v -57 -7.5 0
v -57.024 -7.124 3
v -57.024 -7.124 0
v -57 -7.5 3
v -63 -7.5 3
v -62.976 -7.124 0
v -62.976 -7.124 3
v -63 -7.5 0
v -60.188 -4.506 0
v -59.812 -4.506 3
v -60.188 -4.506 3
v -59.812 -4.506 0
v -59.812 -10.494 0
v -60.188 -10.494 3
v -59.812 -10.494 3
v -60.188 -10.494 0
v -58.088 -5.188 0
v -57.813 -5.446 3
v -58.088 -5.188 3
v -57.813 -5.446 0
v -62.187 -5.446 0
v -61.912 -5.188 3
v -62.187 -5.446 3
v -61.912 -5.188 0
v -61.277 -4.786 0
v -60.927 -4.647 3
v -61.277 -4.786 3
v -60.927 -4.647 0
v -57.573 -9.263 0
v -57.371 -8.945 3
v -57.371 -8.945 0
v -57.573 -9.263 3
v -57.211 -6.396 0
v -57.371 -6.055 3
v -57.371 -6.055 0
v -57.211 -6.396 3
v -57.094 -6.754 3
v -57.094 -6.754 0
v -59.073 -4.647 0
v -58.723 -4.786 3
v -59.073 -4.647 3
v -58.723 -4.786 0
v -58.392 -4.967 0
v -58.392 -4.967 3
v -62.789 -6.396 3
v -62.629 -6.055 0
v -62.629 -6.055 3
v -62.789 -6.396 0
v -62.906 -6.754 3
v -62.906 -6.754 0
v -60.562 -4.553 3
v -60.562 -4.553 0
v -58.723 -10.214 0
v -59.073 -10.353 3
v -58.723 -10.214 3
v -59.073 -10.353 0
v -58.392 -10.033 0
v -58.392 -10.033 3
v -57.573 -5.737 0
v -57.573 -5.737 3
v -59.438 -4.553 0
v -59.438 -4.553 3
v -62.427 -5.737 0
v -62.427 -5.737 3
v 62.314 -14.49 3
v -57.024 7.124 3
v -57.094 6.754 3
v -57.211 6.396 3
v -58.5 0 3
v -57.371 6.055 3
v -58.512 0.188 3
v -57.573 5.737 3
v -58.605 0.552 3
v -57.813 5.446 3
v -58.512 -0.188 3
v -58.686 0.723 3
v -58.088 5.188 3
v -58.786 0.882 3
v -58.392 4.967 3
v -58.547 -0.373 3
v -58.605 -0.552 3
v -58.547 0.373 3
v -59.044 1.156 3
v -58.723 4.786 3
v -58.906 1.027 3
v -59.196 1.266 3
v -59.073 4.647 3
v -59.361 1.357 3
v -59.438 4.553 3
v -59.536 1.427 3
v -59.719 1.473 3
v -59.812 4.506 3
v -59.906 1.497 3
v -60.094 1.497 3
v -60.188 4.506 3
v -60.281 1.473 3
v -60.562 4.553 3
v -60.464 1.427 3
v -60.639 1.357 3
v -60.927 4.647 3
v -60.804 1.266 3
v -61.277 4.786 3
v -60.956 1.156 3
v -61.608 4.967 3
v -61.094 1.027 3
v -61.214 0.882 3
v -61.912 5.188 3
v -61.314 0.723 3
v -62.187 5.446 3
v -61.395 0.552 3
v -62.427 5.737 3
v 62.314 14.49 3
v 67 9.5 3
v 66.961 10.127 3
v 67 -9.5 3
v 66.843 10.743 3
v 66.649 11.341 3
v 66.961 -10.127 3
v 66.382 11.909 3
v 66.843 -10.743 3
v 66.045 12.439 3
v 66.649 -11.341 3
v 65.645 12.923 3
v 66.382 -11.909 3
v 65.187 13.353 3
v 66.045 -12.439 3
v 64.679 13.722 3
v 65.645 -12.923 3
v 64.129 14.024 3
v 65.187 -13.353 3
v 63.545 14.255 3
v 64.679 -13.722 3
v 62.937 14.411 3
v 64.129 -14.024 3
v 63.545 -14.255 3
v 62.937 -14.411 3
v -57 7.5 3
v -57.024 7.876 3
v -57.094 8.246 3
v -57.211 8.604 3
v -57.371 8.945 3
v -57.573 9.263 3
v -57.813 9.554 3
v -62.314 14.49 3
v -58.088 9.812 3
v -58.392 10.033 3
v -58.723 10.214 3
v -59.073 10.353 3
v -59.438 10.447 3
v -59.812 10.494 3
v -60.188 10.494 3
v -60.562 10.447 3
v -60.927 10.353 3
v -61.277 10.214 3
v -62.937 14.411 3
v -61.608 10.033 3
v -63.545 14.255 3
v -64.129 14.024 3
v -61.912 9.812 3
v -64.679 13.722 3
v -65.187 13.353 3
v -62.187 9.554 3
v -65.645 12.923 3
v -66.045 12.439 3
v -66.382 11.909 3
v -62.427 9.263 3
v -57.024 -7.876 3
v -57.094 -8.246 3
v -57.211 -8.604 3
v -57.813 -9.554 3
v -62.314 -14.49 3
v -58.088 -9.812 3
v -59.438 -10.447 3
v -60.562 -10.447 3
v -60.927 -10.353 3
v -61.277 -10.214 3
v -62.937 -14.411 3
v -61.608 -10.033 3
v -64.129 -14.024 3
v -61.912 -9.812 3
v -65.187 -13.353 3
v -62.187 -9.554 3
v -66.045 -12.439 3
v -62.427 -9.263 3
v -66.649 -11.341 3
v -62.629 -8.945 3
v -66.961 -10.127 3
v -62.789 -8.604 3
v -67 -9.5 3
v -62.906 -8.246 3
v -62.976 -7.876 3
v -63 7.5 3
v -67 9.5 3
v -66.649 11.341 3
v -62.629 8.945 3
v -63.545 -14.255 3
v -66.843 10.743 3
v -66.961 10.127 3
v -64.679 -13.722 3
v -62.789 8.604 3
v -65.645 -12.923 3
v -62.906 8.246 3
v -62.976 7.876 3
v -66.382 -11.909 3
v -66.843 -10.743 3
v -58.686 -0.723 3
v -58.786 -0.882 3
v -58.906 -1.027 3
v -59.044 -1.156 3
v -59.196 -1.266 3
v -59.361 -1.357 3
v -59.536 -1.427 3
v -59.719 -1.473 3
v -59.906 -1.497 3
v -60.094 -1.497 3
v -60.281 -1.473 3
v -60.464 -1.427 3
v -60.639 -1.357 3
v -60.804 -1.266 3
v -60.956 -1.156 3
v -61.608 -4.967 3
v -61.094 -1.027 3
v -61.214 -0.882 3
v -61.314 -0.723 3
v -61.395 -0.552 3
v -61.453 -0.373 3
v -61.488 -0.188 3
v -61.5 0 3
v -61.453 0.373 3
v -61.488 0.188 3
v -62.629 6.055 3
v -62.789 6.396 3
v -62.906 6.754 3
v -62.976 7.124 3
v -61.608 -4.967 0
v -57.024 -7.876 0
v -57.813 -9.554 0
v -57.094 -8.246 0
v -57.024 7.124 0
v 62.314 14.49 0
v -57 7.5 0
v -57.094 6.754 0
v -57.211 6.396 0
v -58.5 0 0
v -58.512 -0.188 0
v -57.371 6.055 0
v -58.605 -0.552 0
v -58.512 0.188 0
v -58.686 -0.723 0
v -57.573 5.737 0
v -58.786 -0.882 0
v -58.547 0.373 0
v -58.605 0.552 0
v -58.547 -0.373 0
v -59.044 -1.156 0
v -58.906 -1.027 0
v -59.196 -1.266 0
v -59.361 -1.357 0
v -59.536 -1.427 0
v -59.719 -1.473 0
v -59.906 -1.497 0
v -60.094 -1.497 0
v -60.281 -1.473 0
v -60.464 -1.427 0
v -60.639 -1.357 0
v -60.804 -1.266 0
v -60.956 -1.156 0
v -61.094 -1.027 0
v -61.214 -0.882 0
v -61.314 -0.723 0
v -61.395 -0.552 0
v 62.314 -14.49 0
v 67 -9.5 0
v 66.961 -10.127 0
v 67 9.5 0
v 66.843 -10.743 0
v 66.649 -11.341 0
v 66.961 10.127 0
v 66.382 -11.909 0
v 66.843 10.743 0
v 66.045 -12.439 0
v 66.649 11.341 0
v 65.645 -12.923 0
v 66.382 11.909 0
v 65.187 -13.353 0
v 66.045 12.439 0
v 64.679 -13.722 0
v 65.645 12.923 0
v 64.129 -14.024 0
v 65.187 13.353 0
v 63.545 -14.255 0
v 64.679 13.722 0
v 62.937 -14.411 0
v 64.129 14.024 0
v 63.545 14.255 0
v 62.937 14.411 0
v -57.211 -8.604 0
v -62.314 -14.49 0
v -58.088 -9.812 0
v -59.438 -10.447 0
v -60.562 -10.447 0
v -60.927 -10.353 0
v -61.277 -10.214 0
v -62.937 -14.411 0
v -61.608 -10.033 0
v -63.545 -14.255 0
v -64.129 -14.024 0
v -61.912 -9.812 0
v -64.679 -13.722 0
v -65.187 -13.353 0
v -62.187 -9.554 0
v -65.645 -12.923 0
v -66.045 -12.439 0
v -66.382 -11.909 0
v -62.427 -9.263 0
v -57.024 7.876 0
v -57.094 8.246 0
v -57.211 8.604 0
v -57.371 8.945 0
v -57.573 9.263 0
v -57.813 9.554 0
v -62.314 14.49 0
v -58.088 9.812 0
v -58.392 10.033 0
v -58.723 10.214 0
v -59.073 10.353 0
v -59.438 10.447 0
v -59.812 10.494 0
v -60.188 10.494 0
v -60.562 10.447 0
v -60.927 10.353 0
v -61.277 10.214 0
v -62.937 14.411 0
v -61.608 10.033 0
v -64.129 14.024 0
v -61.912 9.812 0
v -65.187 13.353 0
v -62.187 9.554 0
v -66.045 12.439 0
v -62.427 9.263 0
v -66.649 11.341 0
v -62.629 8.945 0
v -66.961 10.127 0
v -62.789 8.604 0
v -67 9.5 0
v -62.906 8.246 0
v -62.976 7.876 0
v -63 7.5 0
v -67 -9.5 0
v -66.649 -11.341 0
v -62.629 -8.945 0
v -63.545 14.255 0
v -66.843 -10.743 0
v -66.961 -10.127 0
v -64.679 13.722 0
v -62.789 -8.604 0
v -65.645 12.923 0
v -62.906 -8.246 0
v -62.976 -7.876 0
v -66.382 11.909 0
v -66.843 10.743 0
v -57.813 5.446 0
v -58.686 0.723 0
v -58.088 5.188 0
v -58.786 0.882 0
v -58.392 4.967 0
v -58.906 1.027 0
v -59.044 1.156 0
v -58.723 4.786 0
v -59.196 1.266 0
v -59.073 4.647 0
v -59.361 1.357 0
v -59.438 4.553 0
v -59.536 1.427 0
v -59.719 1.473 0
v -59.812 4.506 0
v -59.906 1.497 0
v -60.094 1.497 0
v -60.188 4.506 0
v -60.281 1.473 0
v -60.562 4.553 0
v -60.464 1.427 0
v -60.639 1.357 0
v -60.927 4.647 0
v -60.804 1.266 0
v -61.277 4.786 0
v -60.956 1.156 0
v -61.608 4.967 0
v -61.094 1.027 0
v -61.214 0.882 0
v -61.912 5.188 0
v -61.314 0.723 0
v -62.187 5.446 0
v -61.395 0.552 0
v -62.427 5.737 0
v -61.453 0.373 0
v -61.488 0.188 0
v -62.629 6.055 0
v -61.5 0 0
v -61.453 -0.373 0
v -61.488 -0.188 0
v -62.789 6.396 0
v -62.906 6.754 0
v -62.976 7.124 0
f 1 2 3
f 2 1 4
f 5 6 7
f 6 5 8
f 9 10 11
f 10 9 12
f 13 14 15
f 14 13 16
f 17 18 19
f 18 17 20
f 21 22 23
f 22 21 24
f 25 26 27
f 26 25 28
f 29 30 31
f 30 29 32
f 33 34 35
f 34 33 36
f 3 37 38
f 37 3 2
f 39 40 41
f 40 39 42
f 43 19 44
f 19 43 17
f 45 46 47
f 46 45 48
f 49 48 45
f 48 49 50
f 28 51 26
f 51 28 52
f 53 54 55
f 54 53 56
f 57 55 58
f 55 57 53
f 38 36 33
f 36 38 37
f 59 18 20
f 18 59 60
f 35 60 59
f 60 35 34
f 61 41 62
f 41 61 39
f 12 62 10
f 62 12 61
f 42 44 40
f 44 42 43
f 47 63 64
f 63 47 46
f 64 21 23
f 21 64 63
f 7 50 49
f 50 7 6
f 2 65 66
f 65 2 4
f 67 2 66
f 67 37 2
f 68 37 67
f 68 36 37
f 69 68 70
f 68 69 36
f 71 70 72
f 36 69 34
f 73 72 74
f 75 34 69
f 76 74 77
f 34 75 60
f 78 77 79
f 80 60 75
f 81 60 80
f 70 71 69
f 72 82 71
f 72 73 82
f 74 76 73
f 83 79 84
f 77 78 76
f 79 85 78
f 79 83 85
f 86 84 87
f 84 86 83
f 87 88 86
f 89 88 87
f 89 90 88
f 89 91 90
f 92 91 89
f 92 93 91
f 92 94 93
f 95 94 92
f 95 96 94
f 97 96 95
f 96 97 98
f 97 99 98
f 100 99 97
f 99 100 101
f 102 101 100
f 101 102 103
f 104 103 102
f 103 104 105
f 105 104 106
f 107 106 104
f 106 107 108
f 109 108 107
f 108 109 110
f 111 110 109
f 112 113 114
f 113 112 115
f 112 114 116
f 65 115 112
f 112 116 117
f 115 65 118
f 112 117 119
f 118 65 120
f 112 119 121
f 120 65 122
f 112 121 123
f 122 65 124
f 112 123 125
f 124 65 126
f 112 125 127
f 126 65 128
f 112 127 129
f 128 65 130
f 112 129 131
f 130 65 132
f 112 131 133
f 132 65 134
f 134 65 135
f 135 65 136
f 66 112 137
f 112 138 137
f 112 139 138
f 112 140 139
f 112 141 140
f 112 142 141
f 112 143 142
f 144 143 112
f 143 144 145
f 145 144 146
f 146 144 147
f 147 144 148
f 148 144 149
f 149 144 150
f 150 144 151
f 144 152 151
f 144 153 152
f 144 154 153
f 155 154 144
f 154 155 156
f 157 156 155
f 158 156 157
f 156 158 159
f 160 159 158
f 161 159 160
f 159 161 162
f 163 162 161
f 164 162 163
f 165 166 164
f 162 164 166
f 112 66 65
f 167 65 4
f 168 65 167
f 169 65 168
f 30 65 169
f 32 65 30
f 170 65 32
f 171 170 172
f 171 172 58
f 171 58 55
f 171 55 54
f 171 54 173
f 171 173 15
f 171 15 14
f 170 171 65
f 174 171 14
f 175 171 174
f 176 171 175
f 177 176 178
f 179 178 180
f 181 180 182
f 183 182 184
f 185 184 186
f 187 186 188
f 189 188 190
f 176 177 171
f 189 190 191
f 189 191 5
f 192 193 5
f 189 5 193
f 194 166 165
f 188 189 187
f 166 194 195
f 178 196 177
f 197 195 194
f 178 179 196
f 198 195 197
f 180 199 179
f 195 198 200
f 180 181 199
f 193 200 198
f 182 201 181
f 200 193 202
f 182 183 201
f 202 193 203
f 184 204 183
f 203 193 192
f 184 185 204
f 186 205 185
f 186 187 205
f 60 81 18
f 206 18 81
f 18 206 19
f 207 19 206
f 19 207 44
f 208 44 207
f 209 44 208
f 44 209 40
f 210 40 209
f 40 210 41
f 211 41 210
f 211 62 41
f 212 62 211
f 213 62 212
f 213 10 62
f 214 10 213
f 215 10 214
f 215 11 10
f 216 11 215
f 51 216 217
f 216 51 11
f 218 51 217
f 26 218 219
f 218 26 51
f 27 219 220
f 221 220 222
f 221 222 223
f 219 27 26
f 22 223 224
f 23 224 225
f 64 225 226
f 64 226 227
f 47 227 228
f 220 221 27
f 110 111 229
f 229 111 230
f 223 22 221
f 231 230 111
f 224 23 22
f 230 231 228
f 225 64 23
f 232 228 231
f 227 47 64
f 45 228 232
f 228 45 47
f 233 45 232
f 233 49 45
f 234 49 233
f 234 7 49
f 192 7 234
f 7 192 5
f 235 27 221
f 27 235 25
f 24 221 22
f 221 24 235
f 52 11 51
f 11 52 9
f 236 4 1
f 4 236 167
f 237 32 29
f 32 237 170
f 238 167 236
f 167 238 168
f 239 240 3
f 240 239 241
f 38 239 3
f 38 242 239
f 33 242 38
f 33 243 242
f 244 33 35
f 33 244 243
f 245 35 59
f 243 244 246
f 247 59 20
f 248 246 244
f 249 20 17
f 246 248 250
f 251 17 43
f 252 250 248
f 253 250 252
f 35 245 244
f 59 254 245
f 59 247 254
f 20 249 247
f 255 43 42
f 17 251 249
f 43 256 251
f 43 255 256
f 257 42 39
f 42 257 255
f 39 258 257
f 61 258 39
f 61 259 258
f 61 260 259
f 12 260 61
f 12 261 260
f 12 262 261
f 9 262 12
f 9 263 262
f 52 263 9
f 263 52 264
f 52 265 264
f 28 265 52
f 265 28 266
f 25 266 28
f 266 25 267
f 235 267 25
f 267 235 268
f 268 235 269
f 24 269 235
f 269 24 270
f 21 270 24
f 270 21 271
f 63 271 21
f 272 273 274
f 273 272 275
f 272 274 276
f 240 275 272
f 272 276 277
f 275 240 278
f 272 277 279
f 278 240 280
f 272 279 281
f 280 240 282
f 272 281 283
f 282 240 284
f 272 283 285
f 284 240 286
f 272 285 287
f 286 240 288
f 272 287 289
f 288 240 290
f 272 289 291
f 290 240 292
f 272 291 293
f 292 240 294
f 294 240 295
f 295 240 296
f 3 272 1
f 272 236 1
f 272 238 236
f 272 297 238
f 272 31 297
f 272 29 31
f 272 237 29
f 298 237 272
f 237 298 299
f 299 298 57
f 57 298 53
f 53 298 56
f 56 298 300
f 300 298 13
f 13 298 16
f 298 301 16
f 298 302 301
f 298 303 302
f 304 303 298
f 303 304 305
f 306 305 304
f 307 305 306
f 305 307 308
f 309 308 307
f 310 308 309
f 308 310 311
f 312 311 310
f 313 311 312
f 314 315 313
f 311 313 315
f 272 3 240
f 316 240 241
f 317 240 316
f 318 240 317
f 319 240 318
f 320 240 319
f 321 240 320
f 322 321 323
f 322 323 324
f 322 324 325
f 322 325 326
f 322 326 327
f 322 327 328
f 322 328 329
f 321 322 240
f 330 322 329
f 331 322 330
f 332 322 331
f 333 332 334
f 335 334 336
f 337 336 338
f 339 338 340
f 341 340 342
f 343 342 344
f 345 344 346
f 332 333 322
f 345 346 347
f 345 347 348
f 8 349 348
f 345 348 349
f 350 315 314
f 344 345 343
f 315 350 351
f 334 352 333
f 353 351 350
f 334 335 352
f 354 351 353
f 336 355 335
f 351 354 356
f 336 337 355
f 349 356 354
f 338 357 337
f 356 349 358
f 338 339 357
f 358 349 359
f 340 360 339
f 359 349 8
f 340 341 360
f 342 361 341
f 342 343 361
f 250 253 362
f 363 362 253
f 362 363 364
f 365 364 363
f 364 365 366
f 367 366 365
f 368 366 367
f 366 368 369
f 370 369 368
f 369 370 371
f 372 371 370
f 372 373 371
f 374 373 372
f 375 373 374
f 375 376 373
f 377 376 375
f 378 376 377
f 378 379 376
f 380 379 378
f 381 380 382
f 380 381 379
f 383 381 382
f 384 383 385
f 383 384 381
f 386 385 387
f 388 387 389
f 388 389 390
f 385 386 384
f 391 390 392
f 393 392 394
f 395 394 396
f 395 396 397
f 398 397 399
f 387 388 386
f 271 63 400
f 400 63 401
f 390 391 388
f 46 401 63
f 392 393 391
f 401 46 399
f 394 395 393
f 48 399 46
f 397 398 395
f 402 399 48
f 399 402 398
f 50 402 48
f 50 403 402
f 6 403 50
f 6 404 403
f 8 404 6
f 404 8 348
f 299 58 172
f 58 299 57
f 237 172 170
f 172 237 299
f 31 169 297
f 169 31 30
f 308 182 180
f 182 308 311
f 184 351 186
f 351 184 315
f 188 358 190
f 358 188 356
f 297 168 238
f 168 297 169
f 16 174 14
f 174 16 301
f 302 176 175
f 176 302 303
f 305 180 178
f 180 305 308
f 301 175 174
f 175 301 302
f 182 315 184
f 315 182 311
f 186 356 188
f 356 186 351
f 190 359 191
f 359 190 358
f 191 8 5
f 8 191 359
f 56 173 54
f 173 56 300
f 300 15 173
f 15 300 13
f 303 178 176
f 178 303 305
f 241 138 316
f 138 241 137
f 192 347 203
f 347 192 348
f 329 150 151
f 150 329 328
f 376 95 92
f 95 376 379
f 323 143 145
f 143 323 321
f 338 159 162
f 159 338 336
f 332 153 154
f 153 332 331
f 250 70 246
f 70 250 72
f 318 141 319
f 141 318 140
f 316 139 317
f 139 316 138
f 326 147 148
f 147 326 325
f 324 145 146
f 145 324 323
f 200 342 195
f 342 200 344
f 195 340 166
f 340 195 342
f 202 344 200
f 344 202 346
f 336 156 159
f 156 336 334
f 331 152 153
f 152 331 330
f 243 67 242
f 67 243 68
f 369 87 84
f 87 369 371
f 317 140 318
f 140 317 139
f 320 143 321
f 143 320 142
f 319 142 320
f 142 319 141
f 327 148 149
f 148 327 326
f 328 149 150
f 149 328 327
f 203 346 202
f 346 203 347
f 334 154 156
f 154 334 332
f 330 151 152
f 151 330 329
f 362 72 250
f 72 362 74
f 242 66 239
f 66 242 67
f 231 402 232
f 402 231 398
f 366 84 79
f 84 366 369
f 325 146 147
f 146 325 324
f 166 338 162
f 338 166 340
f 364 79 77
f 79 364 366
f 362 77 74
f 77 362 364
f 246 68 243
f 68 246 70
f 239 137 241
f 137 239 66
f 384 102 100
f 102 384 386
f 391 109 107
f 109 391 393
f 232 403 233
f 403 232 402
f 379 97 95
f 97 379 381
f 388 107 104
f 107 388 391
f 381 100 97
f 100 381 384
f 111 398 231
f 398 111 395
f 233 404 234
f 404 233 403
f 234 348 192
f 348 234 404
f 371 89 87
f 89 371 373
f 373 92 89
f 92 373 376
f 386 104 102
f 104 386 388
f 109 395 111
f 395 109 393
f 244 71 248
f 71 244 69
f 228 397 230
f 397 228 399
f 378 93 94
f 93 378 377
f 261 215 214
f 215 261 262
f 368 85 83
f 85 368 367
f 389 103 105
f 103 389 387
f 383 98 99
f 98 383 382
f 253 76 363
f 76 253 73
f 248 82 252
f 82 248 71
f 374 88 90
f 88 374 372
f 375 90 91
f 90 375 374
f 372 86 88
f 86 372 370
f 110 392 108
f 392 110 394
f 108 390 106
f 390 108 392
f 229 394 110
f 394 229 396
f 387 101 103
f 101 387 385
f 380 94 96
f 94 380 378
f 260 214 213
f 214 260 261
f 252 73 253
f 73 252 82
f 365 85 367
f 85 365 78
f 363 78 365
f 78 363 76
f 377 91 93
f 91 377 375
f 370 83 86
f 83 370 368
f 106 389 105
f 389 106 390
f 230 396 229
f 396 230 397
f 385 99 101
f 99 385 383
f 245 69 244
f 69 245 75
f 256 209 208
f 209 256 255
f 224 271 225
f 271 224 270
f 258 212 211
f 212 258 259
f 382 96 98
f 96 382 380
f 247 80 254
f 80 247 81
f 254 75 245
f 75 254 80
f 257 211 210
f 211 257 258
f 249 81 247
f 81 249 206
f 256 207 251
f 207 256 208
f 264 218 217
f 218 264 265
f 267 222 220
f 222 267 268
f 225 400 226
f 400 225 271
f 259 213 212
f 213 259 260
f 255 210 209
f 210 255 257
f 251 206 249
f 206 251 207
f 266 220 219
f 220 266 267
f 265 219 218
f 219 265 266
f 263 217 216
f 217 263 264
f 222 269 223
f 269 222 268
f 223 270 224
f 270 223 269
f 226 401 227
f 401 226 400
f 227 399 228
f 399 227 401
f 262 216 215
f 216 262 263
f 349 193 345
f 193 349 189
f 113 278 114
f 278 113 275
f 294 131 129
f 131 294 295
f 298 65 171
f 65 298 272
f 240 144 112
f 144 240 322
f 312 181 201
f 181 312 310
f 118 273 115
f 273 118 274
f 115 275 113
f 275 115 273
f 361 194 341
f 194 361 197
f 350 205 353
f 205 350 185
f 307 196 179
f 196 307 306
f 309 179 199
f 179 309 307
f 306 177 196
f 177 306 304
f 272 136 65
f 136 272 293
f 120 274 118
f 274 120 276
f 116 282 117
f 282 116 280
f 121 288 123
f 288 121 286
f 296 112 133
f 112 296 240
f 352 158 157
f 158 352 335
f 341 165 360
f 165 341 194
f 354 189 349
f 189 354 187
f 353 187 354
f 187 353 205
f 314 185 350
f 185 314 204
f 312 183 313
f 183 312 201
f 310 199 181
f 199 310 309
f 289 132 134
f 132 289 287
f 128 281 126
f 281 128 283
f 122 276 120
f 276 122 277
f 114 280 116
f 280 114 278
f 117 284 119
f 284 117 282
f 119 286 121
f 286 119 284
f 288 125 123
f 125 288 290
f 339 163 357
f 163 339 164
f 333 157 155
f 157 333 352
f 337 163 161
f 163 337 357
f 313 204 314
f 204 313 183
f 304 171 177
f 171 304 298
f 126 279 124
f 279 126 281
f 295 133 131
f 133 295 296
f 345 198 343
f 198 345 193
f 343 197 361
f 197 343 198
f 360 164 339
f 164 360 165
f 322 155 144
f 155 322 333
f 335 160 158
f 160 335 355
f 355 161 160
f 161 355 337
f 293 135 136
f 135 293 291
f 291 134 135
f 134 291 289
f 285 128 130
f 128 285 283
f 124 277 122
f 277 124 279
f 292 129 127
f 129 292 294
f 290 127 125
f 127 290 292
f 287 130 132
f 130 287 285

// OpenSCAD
$fn = 50;


difference() {
	union() {
		hull() {
			translate(v = [-62.0000000000, 9.5000000000, 0]) {
				cylinder(h = 3, r = 5);
			}
			translate(v = [62.0000000000, 9.5000000000, 0]) {
				cylinder(h = 3, r = 5);
			}
			translate(v = [-62.0000000000, -9.5000000000, 0]) {
				cylinder(h = 3, r = 5);
			}
			translate(v = [62.0000000000, -9.5000000000, 0]) {
				cylinder(h = 3, r = 5);
			}
		}
	}
	union() {
		translate(v = [-60.0000000000, -7.5000000000, 0]) {
			cylinder(h = 3, r = 3.0000000000);
		}
		translate(v = [-60.0000000000, 7.5000000000, 0]) {
			cylinder(h = 3, r = 3.0000000000);
		}
		translate(v = [-60.0000000000, -7.5000000000, 0]) {
			cylinder(h = 3, r = 1.5000000000);
		}
		translate(v = [-60.0000000000, 0.0000000000, 0]) {
			cylinder(h = 3, r = 1.5000000000);
		}
		translate(v = [-60.0000000000, 7.5000000000, 0]) {
			cylinder(h = 3, r = 1.5000000000);
		}
		translate(v = [-60.0000000000, -7.5000000000, 0]) {
			cylinder(h = 3, r = 1.5000000000);
		}
		translate(v = [-60.0000000000, 0.0000000000, 0]) {
			cylinder(h = 3, r = 1.5000000000);
		}
		translate(v = [-60.0000000000, 7.5000000000, 0]) {
			cylinder(h = 3, r = 1.5000000000);
		}
		translate(v = [-60.0000000000, -7.5000000000, 0]) {
			cylinder(h = 3, r = 1.5000000000);
		}
		translate(v = [-60.0000000000, 0.0000000000, 0]) {
			cylinder(h = 3, r = 1.5000000000);
		}
		translate(v = [-60.0000000000, 7.5000000000, 0]) {
			cylinder(h = 3, r = 1.5000000000);
		}
	}
}
